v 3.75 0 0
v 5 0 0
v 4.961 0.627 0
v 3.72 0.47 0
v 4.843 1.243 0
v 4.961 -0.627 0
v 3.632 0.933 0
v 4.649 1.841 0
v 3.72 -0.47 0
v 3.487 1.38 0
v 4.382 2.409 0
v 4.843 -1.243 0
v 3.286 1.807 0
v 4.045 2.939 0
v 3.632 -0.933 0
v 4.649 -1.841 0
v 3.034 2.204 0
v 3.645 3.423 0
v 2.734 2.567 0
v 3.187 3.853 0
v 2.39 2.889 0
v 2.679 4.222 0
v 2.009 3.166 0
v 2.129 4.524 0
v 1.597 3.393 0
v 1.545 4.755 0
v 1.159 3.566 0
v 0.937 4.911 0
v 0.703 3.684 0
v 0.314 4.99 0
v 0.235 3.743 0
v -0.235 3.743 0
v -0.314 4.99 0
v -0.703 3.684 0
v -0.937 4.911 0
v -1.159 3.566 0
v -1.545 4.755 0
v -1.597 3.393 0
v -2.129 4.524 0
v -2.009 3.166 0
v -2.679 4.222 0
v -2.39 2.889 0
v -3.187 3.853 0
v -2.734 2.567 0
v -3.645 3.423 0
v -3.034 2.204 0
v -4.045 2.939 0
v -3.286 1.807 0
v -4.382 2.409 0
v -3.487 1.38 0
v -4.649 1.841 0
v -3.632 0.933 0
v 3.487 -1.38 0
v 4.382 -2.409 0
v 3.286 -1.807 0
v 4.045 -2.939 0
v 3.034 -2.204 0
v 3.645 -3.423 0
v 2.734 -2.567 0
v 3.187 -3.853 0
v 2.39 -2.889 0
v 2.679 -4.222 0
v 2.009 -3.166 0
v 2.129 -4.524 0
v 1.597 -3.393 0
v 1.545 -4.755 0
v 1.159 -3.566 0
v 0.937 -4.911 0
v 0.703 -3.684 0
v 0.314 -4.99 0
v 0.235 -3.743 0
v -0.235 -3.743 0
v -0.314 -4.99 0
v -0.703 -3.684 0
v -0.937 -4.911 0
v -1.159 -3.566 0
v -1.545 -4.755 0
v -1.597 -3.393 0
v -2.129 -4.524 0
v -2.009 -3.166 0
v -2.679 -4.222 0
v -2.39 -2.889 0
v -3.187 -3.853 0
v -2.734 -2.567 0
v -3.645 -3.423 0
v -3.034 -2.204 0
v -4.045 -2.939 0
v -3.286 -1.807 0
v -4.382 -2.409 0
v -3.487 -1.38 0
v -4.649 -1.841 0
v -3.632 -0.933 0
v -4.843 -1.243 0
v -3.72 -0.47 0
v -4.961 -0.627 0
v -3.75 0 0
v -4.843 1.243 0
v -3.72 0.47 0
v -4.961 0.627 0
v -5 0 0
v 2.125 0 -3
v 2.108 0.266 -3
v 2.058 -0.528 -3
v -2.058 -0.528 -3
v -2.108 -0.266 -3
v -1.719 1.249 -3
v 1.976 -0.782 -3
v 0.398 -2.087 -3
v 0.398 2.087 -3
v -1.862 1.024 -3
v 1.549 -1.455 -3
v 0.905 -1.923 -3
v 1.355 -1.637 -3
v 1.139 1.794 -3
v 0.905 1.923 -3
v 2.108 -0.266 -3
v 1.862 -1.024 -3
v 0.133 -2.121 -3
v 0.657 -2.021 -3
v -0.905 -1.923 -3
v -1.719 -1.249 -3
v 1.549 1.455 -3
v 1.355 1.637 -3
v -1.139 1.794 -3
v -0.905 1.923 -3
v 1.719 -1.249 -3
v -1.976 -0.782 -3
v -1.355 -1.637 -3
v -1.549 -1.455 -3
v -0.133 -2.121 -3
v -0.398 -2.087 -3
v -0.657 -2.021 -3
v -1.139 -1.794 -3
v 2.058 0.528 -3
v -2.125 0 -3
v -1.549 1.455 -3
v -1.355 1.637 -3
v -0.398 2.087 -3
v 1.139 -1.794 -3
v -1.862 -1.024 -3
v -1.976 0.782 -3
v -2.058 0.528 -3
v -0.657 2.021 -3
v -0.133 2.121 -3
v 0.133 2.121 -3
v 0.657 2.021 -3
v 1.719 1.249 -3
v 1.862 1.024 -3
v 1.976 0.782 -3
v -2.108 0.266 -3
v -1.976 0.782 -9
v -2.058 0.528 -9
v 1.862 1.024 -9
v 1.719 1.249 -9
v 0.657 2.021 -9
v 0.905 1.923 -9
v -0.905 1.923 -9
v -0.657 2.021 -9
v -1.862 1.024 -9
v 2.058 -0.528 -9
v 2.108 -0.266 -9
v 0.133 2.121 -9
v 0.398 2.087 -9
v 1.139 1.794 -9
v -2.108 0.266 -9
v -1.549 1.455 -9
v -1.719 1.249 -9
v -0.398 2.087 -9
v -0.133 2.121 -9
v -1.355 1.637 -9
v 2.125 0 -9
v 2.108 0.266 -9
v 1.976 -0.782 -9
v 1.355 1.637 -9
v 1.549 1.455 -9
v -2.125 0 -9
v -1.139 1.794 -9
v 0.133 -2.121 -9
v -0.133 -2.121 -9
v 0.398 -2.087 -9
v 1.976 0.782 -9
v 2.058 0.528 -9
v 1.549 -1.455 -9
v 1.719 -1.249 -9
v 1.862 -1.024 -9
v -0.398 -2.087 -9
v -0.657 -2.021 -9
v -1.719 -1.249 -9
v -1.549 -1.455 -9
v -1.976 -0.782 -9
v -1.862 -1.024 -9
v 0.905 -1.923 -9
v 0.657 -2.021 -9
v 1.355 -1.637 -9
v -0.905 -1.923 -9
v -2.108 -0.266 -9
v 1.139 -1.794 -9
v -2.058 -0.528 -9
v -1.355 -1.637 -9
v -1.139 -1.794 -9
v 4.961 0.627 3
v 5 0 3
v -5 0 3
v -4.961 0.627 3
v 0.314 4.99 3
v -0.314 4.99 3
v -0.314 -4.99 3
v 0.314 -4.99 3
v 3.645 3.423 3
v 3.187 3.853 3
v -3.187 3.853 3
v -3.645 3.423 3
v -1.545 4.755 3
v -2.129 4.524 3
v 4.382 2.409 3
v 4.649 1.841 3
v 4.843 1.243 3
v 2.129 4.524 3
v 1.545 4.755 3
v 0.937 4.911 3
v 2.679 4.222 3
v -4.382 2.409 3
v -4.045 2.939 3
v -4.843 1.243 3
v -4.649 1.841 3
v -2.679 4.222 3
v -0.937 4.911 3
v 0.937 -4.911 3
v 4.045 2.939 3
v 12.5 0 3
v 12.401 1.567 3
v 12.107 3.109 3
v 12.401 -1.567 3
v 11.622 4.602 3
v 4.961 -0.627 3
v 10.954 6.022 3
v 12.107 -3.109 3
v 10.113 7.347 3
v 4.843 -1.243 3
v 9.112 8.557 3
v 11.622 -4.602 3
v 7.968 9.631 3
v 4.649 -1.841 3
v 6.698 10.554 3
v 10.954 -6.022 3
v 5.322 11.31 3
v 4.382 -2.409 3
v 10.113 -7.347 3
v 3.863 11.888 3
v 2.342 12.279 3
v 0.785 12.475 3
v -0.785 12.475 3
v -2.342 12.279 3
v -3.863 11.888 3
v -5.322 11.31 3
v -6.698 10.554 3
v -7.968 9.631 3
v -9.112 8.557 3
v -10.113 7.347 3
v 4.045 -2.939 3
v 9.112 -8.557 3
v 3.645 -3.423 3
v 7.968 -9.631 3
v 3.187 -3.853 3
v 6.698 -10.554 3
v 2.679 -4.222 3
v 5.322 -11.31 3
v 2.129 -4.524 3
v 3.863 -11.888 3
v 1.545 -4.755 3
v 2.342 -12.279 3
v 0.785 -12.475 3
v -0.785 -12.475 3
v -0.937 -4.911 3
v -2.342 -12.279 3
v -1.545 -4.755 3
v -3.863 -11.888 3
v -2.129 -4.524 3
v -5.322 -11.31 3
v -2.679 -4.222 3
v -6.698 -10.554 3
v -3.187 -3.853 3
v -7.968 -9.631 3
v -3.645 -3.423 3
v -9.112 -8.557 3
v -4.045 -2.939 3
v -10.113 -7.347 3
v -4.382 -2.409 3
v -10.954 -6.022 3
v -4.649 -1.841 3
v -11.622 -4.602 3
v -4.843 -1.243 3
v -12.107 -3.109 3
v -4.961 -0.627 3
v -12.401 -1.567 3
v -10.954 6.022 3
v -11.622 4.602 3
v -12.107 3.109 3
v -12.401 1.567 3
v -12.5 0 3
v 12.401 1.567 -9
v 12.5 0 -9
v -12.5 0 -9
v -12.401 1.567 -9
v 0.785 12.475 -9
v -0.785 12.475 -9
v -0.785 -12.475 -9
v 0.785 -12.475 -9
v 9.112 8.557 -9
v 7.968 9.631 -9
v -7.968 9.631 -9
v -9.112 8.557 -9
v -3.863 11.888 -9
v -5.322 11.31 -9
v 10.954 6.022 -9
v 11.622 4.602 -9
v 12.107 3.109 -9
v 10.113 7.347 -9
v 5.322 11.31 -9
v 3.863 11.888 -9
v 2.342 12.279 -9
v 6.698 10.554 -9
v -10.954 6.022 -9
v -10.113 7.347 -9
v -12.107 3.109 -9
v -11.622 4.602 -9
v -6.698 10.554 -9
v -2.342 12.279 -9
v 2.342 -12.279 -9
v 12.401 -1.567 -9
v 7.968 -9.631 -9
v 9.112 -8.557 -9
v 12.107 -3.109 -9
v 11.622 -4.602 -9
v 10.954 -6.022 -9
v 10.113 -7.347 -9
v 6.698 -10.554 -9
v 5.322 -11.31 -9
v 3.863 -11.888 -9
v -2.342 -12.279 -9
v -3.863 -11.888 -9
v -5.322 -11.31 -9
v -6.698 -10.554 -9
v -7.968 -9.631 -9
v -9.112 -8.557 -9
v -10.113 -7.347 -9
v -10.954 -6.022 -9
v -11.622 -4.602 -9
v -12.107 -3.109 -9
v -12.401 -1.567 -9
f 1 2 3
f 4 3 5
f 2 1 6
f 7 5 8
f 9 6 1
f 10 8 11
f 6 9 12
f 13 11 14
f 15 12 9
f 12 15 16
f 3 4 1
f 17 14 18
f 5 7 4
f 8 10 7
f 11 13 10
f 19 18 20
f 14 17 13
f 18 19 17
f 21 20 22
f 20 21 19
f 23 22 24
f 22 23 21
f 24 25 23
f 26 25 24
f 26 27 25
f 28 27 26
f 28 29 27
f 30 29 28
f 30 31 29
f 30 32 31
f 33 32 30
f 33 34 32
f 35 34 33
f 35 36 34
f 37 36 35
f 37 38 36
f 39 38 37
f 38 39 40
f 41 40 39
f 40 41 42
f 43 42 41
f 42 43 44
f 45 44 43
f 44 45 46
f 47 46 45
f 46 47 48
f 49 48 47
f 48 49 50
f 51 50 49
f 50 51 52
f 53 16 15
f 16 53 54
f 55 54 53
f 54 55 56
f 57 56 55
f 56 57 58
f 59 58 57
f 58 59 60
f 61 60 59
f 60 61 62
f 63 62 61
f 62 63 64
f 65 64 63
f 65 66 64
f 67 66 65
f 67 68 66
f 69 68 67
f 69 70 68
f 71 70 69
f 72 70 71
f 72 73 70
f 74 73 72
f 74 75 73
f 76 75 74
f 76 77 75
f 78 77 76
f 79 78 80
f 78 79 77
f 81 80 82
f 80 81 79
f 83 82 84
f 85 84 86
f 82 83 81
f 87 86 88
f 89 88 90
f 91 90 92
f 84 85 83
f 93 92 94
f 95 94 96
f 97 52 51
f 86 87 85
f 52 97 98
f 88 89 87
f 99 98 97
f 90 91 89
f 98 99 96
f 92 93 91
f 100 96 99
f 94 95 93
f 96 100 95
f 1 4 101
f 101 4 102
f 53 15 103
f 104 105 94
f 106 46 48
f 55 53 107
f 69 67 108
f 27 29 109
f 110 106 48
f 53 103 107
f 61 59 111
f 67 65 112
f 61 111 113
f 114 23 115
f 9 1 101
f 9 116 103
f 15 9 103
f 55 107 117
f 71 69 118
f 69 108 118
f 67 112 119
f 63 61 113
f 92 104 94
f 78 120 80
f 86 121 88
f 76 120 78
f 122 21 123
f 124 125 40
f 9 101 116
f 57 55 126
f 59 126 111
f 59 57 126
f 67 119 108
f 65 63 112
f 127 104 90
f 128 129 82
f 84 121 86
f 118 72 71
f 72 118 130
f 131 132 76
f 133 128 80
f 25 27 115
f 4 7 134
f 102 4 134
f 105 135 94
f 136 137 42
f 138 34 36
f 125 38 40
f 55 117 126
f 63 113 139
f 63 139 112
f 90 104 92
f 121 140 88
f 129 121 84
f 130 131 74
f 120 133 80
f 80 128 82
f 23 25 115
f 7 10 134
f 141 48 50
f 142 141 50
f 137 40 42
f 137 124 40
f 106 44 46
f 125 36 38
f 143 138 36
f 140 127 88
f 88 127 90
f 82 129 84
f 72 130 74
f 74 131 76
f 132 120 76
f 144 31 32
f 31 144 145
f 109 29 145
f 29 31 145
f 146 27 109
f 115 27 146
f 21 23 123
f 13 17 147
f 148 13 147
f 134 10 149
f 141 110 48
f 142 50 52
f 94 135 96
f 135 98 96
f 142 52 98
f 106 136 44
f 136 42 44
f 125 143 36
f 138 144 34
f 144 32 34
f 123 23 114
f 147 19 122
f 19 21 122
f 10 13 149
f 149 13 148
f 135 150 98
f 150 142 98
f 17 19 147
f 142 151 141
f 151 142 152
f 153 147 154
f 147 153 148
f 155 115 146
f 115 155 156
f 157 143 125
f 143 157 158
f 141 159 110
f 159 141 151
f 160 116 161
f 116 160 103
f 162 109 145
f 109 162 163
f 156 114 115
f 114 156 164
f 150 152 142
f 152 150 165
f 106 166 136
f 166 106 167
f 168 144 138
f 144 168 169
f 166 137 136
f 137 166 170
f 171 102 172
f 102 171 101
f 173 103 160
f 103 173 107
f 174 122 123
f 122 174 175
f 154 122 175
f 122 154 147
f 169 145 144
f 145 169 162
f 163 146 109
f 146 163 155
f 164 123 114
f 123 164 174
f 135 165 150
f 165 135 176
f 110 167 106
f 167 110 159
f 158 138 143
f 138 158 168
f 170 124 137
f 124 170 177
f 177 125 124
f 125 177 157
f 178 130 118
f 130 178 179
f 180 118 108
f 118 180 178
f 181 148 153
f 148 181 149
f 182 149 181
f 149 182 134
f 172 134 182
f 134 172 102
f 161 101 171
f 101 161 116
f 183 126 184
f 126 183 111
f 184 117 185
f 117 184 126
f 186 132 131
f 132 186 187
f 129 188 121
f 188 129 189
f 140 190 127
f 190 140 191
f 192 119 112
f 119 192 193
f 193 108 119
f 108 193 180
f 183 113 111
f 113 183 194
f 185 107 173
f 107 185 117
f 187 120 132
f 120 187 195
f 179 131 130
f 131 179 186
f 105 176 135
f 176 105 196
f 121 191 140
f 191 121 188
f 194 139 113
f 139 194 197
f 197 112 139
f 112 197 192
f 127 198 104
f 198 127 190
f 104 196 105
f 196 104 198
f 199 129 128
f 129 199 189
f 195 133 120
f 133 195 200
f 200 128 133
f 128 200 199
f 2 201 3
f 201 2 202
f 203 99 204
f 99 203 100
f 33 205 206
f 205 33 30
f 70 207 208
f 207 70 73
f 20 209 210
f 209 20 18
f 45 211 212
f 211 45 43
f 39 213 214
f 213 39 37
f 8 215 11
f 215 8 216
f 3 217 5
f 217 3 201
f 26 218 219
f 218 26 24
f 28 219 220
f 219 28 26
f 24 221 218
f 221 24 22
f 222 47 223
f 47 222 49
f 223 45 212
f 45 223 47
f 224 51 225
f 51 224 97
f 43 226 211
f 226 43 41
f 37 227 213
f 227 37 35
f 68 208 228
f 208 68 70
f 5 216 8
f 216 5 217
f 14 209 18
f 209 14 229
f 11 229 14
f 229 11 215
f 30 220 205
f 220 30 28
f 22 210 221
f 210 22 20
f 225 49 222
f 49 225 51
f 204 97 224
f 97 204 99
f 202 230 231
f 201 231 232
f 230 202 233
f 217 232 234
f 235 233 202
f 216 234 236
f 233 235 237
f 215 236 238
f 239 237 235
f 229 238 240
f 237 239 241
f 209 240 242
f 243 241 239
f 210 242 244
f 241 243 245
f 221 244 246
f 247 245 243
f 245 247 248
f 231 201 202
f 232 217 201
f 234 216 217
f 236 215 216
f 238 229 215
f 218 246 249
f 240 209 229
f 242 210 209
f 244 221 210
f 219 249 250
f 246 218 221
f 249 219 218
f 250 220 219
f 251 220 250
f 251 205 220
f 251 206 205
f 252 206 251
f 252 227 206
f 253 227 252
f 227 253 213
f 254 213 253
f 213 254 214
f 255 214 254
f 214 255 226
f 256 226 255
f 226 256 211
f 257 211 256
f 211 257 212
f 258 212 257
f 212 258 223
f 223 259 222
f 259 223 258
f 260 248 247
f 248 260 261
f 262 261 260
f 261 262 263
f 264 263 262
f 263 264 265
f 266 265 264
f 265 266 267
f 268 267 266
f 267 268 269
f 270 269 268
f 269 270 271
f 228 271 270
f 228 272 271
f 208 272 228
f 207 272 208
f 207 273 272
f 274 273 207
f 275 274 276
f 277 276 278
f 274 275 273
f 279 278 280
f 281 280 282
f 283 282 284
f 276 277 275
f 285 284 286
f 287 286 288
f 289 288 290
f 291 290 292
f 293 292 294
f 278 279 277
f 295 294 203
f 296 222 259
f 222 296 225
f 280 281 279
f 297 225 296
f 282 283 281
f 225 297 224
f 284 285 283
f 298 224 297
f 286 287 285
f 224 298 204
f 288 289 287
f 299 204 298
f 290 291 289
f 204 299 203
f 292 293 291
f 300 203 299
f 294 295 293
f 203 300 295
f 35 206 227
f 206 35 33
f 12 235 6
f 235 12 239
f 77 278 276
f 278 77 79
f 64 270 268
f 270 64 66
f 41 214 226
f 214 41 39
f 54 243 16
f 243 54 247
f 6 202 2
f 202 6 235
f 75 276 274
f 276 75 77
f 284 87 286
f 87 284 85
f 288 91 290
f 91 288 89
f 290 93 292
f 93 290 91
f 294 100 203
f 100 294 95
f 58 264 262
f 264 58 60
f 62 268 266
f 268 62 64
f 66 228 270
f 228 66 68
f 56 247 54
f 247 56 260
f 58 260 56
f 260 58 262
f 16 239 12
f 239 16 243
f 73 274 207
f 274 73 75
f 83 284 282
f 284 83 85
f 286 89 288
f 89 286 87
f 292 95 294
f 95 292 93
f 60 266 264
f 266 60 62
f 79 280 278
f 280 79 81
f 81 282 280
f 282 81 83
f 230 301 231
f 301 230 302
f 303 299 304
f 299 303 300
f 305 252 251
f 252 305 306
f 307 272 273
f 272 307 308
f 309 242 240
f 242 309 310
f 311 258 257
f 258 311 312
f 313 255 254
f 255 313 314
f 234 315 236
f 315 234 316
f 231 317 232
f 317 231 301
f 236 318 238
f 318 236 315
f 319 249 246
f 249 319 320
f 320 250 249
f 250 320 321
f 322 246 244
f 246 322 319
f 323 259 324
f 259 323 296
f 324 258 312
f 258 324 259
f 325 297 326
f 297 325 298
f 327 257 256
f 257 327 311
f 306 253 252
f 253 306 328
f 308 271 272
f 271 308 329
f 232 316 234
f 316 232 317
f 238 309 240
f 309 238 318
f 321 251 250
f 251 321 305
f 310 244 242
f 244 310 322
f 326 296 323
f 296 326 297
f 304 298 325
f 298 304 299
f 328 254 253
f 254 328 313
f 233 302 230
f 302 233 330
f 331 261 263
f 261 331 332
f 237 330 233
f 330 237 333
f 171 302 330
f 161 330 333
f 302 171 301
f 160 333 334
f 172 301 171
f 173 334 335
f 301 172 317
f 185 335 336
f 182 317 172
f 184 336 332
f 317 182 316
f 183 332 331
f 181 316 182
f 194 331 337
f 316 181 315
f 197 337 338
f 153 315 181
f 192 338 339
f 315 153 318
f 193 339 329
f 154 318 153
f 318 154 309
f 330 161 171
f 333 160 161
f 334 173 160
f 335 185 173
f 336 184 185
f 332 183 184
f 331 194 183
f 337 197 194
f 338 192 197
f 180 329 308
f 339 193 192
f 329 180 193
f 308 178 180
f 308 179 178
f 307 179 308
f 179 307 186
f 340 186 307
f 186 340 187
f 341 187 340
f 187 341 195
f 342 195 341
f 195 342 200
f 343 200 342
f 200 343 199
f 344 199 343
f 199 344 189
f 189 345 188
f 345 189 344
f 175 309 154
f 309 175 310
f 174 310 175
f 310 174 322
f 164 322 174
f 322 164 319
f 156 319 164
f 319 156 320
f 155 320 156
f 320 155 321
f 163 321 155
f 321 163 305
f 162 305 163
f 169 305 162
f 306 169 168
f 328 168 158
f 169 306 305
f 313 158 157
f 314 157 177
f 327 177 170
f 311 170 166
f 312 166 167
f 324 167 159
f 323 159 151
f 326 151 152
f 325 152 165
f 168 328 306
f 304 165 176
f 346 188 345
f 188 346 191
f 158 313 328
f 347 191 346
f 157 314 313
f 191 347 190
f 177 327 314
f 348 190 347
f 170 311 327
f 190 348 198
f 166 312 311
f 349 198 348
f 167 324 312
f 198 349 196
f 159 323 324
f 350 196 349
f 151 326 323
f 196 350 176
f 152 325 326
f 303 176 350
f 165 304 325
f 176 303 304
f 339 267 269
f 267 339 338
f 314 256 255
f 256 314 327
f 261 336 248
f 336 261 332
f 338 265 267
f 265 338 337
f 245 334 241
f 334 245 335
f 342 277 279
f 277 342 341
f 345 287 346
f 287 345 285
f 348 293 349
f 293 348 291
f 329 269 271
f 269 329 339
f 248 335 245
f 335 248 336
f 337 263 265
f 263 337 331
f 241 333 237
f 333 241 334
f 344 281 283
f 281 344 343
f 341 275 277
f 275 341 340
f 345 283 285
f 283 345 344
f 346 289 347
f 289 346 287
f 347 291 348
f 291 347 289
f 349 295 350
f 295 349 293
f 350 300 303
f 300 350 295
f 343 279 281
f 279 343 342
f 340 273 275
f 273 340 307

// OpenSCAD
$fn = 50;

difference() {
	union() {
		translate(v = [0, 0, -9.0]) {
			cylinder(h = 12, r = 12.5);
		}
	}
	union() {
		translate(v = [0, 0, 0]) {
			rotate(a = [0, 0, 0]) {
				difference() {
					union() {
						translate(v = [0, 0, -12.0]) {
							cylinder(h = 12, r = 2.0);
						}
						translate(v = [0, 0, -3]) {
							cylinder(h = 3, r1 = 2.125, r2 = 3.75);
						}
						translate(v = [0, 0, -12.0]) {
							cylinder(h = 12, r = 2.125);
						}
						translate(v = [0, 0, -12.0]) {
							cylinder(h = 12, r = 2.0);
						}
					}
					union();
				}
			}
		}
		#cylinder(h = 3, r = 5.0);
	}
}
